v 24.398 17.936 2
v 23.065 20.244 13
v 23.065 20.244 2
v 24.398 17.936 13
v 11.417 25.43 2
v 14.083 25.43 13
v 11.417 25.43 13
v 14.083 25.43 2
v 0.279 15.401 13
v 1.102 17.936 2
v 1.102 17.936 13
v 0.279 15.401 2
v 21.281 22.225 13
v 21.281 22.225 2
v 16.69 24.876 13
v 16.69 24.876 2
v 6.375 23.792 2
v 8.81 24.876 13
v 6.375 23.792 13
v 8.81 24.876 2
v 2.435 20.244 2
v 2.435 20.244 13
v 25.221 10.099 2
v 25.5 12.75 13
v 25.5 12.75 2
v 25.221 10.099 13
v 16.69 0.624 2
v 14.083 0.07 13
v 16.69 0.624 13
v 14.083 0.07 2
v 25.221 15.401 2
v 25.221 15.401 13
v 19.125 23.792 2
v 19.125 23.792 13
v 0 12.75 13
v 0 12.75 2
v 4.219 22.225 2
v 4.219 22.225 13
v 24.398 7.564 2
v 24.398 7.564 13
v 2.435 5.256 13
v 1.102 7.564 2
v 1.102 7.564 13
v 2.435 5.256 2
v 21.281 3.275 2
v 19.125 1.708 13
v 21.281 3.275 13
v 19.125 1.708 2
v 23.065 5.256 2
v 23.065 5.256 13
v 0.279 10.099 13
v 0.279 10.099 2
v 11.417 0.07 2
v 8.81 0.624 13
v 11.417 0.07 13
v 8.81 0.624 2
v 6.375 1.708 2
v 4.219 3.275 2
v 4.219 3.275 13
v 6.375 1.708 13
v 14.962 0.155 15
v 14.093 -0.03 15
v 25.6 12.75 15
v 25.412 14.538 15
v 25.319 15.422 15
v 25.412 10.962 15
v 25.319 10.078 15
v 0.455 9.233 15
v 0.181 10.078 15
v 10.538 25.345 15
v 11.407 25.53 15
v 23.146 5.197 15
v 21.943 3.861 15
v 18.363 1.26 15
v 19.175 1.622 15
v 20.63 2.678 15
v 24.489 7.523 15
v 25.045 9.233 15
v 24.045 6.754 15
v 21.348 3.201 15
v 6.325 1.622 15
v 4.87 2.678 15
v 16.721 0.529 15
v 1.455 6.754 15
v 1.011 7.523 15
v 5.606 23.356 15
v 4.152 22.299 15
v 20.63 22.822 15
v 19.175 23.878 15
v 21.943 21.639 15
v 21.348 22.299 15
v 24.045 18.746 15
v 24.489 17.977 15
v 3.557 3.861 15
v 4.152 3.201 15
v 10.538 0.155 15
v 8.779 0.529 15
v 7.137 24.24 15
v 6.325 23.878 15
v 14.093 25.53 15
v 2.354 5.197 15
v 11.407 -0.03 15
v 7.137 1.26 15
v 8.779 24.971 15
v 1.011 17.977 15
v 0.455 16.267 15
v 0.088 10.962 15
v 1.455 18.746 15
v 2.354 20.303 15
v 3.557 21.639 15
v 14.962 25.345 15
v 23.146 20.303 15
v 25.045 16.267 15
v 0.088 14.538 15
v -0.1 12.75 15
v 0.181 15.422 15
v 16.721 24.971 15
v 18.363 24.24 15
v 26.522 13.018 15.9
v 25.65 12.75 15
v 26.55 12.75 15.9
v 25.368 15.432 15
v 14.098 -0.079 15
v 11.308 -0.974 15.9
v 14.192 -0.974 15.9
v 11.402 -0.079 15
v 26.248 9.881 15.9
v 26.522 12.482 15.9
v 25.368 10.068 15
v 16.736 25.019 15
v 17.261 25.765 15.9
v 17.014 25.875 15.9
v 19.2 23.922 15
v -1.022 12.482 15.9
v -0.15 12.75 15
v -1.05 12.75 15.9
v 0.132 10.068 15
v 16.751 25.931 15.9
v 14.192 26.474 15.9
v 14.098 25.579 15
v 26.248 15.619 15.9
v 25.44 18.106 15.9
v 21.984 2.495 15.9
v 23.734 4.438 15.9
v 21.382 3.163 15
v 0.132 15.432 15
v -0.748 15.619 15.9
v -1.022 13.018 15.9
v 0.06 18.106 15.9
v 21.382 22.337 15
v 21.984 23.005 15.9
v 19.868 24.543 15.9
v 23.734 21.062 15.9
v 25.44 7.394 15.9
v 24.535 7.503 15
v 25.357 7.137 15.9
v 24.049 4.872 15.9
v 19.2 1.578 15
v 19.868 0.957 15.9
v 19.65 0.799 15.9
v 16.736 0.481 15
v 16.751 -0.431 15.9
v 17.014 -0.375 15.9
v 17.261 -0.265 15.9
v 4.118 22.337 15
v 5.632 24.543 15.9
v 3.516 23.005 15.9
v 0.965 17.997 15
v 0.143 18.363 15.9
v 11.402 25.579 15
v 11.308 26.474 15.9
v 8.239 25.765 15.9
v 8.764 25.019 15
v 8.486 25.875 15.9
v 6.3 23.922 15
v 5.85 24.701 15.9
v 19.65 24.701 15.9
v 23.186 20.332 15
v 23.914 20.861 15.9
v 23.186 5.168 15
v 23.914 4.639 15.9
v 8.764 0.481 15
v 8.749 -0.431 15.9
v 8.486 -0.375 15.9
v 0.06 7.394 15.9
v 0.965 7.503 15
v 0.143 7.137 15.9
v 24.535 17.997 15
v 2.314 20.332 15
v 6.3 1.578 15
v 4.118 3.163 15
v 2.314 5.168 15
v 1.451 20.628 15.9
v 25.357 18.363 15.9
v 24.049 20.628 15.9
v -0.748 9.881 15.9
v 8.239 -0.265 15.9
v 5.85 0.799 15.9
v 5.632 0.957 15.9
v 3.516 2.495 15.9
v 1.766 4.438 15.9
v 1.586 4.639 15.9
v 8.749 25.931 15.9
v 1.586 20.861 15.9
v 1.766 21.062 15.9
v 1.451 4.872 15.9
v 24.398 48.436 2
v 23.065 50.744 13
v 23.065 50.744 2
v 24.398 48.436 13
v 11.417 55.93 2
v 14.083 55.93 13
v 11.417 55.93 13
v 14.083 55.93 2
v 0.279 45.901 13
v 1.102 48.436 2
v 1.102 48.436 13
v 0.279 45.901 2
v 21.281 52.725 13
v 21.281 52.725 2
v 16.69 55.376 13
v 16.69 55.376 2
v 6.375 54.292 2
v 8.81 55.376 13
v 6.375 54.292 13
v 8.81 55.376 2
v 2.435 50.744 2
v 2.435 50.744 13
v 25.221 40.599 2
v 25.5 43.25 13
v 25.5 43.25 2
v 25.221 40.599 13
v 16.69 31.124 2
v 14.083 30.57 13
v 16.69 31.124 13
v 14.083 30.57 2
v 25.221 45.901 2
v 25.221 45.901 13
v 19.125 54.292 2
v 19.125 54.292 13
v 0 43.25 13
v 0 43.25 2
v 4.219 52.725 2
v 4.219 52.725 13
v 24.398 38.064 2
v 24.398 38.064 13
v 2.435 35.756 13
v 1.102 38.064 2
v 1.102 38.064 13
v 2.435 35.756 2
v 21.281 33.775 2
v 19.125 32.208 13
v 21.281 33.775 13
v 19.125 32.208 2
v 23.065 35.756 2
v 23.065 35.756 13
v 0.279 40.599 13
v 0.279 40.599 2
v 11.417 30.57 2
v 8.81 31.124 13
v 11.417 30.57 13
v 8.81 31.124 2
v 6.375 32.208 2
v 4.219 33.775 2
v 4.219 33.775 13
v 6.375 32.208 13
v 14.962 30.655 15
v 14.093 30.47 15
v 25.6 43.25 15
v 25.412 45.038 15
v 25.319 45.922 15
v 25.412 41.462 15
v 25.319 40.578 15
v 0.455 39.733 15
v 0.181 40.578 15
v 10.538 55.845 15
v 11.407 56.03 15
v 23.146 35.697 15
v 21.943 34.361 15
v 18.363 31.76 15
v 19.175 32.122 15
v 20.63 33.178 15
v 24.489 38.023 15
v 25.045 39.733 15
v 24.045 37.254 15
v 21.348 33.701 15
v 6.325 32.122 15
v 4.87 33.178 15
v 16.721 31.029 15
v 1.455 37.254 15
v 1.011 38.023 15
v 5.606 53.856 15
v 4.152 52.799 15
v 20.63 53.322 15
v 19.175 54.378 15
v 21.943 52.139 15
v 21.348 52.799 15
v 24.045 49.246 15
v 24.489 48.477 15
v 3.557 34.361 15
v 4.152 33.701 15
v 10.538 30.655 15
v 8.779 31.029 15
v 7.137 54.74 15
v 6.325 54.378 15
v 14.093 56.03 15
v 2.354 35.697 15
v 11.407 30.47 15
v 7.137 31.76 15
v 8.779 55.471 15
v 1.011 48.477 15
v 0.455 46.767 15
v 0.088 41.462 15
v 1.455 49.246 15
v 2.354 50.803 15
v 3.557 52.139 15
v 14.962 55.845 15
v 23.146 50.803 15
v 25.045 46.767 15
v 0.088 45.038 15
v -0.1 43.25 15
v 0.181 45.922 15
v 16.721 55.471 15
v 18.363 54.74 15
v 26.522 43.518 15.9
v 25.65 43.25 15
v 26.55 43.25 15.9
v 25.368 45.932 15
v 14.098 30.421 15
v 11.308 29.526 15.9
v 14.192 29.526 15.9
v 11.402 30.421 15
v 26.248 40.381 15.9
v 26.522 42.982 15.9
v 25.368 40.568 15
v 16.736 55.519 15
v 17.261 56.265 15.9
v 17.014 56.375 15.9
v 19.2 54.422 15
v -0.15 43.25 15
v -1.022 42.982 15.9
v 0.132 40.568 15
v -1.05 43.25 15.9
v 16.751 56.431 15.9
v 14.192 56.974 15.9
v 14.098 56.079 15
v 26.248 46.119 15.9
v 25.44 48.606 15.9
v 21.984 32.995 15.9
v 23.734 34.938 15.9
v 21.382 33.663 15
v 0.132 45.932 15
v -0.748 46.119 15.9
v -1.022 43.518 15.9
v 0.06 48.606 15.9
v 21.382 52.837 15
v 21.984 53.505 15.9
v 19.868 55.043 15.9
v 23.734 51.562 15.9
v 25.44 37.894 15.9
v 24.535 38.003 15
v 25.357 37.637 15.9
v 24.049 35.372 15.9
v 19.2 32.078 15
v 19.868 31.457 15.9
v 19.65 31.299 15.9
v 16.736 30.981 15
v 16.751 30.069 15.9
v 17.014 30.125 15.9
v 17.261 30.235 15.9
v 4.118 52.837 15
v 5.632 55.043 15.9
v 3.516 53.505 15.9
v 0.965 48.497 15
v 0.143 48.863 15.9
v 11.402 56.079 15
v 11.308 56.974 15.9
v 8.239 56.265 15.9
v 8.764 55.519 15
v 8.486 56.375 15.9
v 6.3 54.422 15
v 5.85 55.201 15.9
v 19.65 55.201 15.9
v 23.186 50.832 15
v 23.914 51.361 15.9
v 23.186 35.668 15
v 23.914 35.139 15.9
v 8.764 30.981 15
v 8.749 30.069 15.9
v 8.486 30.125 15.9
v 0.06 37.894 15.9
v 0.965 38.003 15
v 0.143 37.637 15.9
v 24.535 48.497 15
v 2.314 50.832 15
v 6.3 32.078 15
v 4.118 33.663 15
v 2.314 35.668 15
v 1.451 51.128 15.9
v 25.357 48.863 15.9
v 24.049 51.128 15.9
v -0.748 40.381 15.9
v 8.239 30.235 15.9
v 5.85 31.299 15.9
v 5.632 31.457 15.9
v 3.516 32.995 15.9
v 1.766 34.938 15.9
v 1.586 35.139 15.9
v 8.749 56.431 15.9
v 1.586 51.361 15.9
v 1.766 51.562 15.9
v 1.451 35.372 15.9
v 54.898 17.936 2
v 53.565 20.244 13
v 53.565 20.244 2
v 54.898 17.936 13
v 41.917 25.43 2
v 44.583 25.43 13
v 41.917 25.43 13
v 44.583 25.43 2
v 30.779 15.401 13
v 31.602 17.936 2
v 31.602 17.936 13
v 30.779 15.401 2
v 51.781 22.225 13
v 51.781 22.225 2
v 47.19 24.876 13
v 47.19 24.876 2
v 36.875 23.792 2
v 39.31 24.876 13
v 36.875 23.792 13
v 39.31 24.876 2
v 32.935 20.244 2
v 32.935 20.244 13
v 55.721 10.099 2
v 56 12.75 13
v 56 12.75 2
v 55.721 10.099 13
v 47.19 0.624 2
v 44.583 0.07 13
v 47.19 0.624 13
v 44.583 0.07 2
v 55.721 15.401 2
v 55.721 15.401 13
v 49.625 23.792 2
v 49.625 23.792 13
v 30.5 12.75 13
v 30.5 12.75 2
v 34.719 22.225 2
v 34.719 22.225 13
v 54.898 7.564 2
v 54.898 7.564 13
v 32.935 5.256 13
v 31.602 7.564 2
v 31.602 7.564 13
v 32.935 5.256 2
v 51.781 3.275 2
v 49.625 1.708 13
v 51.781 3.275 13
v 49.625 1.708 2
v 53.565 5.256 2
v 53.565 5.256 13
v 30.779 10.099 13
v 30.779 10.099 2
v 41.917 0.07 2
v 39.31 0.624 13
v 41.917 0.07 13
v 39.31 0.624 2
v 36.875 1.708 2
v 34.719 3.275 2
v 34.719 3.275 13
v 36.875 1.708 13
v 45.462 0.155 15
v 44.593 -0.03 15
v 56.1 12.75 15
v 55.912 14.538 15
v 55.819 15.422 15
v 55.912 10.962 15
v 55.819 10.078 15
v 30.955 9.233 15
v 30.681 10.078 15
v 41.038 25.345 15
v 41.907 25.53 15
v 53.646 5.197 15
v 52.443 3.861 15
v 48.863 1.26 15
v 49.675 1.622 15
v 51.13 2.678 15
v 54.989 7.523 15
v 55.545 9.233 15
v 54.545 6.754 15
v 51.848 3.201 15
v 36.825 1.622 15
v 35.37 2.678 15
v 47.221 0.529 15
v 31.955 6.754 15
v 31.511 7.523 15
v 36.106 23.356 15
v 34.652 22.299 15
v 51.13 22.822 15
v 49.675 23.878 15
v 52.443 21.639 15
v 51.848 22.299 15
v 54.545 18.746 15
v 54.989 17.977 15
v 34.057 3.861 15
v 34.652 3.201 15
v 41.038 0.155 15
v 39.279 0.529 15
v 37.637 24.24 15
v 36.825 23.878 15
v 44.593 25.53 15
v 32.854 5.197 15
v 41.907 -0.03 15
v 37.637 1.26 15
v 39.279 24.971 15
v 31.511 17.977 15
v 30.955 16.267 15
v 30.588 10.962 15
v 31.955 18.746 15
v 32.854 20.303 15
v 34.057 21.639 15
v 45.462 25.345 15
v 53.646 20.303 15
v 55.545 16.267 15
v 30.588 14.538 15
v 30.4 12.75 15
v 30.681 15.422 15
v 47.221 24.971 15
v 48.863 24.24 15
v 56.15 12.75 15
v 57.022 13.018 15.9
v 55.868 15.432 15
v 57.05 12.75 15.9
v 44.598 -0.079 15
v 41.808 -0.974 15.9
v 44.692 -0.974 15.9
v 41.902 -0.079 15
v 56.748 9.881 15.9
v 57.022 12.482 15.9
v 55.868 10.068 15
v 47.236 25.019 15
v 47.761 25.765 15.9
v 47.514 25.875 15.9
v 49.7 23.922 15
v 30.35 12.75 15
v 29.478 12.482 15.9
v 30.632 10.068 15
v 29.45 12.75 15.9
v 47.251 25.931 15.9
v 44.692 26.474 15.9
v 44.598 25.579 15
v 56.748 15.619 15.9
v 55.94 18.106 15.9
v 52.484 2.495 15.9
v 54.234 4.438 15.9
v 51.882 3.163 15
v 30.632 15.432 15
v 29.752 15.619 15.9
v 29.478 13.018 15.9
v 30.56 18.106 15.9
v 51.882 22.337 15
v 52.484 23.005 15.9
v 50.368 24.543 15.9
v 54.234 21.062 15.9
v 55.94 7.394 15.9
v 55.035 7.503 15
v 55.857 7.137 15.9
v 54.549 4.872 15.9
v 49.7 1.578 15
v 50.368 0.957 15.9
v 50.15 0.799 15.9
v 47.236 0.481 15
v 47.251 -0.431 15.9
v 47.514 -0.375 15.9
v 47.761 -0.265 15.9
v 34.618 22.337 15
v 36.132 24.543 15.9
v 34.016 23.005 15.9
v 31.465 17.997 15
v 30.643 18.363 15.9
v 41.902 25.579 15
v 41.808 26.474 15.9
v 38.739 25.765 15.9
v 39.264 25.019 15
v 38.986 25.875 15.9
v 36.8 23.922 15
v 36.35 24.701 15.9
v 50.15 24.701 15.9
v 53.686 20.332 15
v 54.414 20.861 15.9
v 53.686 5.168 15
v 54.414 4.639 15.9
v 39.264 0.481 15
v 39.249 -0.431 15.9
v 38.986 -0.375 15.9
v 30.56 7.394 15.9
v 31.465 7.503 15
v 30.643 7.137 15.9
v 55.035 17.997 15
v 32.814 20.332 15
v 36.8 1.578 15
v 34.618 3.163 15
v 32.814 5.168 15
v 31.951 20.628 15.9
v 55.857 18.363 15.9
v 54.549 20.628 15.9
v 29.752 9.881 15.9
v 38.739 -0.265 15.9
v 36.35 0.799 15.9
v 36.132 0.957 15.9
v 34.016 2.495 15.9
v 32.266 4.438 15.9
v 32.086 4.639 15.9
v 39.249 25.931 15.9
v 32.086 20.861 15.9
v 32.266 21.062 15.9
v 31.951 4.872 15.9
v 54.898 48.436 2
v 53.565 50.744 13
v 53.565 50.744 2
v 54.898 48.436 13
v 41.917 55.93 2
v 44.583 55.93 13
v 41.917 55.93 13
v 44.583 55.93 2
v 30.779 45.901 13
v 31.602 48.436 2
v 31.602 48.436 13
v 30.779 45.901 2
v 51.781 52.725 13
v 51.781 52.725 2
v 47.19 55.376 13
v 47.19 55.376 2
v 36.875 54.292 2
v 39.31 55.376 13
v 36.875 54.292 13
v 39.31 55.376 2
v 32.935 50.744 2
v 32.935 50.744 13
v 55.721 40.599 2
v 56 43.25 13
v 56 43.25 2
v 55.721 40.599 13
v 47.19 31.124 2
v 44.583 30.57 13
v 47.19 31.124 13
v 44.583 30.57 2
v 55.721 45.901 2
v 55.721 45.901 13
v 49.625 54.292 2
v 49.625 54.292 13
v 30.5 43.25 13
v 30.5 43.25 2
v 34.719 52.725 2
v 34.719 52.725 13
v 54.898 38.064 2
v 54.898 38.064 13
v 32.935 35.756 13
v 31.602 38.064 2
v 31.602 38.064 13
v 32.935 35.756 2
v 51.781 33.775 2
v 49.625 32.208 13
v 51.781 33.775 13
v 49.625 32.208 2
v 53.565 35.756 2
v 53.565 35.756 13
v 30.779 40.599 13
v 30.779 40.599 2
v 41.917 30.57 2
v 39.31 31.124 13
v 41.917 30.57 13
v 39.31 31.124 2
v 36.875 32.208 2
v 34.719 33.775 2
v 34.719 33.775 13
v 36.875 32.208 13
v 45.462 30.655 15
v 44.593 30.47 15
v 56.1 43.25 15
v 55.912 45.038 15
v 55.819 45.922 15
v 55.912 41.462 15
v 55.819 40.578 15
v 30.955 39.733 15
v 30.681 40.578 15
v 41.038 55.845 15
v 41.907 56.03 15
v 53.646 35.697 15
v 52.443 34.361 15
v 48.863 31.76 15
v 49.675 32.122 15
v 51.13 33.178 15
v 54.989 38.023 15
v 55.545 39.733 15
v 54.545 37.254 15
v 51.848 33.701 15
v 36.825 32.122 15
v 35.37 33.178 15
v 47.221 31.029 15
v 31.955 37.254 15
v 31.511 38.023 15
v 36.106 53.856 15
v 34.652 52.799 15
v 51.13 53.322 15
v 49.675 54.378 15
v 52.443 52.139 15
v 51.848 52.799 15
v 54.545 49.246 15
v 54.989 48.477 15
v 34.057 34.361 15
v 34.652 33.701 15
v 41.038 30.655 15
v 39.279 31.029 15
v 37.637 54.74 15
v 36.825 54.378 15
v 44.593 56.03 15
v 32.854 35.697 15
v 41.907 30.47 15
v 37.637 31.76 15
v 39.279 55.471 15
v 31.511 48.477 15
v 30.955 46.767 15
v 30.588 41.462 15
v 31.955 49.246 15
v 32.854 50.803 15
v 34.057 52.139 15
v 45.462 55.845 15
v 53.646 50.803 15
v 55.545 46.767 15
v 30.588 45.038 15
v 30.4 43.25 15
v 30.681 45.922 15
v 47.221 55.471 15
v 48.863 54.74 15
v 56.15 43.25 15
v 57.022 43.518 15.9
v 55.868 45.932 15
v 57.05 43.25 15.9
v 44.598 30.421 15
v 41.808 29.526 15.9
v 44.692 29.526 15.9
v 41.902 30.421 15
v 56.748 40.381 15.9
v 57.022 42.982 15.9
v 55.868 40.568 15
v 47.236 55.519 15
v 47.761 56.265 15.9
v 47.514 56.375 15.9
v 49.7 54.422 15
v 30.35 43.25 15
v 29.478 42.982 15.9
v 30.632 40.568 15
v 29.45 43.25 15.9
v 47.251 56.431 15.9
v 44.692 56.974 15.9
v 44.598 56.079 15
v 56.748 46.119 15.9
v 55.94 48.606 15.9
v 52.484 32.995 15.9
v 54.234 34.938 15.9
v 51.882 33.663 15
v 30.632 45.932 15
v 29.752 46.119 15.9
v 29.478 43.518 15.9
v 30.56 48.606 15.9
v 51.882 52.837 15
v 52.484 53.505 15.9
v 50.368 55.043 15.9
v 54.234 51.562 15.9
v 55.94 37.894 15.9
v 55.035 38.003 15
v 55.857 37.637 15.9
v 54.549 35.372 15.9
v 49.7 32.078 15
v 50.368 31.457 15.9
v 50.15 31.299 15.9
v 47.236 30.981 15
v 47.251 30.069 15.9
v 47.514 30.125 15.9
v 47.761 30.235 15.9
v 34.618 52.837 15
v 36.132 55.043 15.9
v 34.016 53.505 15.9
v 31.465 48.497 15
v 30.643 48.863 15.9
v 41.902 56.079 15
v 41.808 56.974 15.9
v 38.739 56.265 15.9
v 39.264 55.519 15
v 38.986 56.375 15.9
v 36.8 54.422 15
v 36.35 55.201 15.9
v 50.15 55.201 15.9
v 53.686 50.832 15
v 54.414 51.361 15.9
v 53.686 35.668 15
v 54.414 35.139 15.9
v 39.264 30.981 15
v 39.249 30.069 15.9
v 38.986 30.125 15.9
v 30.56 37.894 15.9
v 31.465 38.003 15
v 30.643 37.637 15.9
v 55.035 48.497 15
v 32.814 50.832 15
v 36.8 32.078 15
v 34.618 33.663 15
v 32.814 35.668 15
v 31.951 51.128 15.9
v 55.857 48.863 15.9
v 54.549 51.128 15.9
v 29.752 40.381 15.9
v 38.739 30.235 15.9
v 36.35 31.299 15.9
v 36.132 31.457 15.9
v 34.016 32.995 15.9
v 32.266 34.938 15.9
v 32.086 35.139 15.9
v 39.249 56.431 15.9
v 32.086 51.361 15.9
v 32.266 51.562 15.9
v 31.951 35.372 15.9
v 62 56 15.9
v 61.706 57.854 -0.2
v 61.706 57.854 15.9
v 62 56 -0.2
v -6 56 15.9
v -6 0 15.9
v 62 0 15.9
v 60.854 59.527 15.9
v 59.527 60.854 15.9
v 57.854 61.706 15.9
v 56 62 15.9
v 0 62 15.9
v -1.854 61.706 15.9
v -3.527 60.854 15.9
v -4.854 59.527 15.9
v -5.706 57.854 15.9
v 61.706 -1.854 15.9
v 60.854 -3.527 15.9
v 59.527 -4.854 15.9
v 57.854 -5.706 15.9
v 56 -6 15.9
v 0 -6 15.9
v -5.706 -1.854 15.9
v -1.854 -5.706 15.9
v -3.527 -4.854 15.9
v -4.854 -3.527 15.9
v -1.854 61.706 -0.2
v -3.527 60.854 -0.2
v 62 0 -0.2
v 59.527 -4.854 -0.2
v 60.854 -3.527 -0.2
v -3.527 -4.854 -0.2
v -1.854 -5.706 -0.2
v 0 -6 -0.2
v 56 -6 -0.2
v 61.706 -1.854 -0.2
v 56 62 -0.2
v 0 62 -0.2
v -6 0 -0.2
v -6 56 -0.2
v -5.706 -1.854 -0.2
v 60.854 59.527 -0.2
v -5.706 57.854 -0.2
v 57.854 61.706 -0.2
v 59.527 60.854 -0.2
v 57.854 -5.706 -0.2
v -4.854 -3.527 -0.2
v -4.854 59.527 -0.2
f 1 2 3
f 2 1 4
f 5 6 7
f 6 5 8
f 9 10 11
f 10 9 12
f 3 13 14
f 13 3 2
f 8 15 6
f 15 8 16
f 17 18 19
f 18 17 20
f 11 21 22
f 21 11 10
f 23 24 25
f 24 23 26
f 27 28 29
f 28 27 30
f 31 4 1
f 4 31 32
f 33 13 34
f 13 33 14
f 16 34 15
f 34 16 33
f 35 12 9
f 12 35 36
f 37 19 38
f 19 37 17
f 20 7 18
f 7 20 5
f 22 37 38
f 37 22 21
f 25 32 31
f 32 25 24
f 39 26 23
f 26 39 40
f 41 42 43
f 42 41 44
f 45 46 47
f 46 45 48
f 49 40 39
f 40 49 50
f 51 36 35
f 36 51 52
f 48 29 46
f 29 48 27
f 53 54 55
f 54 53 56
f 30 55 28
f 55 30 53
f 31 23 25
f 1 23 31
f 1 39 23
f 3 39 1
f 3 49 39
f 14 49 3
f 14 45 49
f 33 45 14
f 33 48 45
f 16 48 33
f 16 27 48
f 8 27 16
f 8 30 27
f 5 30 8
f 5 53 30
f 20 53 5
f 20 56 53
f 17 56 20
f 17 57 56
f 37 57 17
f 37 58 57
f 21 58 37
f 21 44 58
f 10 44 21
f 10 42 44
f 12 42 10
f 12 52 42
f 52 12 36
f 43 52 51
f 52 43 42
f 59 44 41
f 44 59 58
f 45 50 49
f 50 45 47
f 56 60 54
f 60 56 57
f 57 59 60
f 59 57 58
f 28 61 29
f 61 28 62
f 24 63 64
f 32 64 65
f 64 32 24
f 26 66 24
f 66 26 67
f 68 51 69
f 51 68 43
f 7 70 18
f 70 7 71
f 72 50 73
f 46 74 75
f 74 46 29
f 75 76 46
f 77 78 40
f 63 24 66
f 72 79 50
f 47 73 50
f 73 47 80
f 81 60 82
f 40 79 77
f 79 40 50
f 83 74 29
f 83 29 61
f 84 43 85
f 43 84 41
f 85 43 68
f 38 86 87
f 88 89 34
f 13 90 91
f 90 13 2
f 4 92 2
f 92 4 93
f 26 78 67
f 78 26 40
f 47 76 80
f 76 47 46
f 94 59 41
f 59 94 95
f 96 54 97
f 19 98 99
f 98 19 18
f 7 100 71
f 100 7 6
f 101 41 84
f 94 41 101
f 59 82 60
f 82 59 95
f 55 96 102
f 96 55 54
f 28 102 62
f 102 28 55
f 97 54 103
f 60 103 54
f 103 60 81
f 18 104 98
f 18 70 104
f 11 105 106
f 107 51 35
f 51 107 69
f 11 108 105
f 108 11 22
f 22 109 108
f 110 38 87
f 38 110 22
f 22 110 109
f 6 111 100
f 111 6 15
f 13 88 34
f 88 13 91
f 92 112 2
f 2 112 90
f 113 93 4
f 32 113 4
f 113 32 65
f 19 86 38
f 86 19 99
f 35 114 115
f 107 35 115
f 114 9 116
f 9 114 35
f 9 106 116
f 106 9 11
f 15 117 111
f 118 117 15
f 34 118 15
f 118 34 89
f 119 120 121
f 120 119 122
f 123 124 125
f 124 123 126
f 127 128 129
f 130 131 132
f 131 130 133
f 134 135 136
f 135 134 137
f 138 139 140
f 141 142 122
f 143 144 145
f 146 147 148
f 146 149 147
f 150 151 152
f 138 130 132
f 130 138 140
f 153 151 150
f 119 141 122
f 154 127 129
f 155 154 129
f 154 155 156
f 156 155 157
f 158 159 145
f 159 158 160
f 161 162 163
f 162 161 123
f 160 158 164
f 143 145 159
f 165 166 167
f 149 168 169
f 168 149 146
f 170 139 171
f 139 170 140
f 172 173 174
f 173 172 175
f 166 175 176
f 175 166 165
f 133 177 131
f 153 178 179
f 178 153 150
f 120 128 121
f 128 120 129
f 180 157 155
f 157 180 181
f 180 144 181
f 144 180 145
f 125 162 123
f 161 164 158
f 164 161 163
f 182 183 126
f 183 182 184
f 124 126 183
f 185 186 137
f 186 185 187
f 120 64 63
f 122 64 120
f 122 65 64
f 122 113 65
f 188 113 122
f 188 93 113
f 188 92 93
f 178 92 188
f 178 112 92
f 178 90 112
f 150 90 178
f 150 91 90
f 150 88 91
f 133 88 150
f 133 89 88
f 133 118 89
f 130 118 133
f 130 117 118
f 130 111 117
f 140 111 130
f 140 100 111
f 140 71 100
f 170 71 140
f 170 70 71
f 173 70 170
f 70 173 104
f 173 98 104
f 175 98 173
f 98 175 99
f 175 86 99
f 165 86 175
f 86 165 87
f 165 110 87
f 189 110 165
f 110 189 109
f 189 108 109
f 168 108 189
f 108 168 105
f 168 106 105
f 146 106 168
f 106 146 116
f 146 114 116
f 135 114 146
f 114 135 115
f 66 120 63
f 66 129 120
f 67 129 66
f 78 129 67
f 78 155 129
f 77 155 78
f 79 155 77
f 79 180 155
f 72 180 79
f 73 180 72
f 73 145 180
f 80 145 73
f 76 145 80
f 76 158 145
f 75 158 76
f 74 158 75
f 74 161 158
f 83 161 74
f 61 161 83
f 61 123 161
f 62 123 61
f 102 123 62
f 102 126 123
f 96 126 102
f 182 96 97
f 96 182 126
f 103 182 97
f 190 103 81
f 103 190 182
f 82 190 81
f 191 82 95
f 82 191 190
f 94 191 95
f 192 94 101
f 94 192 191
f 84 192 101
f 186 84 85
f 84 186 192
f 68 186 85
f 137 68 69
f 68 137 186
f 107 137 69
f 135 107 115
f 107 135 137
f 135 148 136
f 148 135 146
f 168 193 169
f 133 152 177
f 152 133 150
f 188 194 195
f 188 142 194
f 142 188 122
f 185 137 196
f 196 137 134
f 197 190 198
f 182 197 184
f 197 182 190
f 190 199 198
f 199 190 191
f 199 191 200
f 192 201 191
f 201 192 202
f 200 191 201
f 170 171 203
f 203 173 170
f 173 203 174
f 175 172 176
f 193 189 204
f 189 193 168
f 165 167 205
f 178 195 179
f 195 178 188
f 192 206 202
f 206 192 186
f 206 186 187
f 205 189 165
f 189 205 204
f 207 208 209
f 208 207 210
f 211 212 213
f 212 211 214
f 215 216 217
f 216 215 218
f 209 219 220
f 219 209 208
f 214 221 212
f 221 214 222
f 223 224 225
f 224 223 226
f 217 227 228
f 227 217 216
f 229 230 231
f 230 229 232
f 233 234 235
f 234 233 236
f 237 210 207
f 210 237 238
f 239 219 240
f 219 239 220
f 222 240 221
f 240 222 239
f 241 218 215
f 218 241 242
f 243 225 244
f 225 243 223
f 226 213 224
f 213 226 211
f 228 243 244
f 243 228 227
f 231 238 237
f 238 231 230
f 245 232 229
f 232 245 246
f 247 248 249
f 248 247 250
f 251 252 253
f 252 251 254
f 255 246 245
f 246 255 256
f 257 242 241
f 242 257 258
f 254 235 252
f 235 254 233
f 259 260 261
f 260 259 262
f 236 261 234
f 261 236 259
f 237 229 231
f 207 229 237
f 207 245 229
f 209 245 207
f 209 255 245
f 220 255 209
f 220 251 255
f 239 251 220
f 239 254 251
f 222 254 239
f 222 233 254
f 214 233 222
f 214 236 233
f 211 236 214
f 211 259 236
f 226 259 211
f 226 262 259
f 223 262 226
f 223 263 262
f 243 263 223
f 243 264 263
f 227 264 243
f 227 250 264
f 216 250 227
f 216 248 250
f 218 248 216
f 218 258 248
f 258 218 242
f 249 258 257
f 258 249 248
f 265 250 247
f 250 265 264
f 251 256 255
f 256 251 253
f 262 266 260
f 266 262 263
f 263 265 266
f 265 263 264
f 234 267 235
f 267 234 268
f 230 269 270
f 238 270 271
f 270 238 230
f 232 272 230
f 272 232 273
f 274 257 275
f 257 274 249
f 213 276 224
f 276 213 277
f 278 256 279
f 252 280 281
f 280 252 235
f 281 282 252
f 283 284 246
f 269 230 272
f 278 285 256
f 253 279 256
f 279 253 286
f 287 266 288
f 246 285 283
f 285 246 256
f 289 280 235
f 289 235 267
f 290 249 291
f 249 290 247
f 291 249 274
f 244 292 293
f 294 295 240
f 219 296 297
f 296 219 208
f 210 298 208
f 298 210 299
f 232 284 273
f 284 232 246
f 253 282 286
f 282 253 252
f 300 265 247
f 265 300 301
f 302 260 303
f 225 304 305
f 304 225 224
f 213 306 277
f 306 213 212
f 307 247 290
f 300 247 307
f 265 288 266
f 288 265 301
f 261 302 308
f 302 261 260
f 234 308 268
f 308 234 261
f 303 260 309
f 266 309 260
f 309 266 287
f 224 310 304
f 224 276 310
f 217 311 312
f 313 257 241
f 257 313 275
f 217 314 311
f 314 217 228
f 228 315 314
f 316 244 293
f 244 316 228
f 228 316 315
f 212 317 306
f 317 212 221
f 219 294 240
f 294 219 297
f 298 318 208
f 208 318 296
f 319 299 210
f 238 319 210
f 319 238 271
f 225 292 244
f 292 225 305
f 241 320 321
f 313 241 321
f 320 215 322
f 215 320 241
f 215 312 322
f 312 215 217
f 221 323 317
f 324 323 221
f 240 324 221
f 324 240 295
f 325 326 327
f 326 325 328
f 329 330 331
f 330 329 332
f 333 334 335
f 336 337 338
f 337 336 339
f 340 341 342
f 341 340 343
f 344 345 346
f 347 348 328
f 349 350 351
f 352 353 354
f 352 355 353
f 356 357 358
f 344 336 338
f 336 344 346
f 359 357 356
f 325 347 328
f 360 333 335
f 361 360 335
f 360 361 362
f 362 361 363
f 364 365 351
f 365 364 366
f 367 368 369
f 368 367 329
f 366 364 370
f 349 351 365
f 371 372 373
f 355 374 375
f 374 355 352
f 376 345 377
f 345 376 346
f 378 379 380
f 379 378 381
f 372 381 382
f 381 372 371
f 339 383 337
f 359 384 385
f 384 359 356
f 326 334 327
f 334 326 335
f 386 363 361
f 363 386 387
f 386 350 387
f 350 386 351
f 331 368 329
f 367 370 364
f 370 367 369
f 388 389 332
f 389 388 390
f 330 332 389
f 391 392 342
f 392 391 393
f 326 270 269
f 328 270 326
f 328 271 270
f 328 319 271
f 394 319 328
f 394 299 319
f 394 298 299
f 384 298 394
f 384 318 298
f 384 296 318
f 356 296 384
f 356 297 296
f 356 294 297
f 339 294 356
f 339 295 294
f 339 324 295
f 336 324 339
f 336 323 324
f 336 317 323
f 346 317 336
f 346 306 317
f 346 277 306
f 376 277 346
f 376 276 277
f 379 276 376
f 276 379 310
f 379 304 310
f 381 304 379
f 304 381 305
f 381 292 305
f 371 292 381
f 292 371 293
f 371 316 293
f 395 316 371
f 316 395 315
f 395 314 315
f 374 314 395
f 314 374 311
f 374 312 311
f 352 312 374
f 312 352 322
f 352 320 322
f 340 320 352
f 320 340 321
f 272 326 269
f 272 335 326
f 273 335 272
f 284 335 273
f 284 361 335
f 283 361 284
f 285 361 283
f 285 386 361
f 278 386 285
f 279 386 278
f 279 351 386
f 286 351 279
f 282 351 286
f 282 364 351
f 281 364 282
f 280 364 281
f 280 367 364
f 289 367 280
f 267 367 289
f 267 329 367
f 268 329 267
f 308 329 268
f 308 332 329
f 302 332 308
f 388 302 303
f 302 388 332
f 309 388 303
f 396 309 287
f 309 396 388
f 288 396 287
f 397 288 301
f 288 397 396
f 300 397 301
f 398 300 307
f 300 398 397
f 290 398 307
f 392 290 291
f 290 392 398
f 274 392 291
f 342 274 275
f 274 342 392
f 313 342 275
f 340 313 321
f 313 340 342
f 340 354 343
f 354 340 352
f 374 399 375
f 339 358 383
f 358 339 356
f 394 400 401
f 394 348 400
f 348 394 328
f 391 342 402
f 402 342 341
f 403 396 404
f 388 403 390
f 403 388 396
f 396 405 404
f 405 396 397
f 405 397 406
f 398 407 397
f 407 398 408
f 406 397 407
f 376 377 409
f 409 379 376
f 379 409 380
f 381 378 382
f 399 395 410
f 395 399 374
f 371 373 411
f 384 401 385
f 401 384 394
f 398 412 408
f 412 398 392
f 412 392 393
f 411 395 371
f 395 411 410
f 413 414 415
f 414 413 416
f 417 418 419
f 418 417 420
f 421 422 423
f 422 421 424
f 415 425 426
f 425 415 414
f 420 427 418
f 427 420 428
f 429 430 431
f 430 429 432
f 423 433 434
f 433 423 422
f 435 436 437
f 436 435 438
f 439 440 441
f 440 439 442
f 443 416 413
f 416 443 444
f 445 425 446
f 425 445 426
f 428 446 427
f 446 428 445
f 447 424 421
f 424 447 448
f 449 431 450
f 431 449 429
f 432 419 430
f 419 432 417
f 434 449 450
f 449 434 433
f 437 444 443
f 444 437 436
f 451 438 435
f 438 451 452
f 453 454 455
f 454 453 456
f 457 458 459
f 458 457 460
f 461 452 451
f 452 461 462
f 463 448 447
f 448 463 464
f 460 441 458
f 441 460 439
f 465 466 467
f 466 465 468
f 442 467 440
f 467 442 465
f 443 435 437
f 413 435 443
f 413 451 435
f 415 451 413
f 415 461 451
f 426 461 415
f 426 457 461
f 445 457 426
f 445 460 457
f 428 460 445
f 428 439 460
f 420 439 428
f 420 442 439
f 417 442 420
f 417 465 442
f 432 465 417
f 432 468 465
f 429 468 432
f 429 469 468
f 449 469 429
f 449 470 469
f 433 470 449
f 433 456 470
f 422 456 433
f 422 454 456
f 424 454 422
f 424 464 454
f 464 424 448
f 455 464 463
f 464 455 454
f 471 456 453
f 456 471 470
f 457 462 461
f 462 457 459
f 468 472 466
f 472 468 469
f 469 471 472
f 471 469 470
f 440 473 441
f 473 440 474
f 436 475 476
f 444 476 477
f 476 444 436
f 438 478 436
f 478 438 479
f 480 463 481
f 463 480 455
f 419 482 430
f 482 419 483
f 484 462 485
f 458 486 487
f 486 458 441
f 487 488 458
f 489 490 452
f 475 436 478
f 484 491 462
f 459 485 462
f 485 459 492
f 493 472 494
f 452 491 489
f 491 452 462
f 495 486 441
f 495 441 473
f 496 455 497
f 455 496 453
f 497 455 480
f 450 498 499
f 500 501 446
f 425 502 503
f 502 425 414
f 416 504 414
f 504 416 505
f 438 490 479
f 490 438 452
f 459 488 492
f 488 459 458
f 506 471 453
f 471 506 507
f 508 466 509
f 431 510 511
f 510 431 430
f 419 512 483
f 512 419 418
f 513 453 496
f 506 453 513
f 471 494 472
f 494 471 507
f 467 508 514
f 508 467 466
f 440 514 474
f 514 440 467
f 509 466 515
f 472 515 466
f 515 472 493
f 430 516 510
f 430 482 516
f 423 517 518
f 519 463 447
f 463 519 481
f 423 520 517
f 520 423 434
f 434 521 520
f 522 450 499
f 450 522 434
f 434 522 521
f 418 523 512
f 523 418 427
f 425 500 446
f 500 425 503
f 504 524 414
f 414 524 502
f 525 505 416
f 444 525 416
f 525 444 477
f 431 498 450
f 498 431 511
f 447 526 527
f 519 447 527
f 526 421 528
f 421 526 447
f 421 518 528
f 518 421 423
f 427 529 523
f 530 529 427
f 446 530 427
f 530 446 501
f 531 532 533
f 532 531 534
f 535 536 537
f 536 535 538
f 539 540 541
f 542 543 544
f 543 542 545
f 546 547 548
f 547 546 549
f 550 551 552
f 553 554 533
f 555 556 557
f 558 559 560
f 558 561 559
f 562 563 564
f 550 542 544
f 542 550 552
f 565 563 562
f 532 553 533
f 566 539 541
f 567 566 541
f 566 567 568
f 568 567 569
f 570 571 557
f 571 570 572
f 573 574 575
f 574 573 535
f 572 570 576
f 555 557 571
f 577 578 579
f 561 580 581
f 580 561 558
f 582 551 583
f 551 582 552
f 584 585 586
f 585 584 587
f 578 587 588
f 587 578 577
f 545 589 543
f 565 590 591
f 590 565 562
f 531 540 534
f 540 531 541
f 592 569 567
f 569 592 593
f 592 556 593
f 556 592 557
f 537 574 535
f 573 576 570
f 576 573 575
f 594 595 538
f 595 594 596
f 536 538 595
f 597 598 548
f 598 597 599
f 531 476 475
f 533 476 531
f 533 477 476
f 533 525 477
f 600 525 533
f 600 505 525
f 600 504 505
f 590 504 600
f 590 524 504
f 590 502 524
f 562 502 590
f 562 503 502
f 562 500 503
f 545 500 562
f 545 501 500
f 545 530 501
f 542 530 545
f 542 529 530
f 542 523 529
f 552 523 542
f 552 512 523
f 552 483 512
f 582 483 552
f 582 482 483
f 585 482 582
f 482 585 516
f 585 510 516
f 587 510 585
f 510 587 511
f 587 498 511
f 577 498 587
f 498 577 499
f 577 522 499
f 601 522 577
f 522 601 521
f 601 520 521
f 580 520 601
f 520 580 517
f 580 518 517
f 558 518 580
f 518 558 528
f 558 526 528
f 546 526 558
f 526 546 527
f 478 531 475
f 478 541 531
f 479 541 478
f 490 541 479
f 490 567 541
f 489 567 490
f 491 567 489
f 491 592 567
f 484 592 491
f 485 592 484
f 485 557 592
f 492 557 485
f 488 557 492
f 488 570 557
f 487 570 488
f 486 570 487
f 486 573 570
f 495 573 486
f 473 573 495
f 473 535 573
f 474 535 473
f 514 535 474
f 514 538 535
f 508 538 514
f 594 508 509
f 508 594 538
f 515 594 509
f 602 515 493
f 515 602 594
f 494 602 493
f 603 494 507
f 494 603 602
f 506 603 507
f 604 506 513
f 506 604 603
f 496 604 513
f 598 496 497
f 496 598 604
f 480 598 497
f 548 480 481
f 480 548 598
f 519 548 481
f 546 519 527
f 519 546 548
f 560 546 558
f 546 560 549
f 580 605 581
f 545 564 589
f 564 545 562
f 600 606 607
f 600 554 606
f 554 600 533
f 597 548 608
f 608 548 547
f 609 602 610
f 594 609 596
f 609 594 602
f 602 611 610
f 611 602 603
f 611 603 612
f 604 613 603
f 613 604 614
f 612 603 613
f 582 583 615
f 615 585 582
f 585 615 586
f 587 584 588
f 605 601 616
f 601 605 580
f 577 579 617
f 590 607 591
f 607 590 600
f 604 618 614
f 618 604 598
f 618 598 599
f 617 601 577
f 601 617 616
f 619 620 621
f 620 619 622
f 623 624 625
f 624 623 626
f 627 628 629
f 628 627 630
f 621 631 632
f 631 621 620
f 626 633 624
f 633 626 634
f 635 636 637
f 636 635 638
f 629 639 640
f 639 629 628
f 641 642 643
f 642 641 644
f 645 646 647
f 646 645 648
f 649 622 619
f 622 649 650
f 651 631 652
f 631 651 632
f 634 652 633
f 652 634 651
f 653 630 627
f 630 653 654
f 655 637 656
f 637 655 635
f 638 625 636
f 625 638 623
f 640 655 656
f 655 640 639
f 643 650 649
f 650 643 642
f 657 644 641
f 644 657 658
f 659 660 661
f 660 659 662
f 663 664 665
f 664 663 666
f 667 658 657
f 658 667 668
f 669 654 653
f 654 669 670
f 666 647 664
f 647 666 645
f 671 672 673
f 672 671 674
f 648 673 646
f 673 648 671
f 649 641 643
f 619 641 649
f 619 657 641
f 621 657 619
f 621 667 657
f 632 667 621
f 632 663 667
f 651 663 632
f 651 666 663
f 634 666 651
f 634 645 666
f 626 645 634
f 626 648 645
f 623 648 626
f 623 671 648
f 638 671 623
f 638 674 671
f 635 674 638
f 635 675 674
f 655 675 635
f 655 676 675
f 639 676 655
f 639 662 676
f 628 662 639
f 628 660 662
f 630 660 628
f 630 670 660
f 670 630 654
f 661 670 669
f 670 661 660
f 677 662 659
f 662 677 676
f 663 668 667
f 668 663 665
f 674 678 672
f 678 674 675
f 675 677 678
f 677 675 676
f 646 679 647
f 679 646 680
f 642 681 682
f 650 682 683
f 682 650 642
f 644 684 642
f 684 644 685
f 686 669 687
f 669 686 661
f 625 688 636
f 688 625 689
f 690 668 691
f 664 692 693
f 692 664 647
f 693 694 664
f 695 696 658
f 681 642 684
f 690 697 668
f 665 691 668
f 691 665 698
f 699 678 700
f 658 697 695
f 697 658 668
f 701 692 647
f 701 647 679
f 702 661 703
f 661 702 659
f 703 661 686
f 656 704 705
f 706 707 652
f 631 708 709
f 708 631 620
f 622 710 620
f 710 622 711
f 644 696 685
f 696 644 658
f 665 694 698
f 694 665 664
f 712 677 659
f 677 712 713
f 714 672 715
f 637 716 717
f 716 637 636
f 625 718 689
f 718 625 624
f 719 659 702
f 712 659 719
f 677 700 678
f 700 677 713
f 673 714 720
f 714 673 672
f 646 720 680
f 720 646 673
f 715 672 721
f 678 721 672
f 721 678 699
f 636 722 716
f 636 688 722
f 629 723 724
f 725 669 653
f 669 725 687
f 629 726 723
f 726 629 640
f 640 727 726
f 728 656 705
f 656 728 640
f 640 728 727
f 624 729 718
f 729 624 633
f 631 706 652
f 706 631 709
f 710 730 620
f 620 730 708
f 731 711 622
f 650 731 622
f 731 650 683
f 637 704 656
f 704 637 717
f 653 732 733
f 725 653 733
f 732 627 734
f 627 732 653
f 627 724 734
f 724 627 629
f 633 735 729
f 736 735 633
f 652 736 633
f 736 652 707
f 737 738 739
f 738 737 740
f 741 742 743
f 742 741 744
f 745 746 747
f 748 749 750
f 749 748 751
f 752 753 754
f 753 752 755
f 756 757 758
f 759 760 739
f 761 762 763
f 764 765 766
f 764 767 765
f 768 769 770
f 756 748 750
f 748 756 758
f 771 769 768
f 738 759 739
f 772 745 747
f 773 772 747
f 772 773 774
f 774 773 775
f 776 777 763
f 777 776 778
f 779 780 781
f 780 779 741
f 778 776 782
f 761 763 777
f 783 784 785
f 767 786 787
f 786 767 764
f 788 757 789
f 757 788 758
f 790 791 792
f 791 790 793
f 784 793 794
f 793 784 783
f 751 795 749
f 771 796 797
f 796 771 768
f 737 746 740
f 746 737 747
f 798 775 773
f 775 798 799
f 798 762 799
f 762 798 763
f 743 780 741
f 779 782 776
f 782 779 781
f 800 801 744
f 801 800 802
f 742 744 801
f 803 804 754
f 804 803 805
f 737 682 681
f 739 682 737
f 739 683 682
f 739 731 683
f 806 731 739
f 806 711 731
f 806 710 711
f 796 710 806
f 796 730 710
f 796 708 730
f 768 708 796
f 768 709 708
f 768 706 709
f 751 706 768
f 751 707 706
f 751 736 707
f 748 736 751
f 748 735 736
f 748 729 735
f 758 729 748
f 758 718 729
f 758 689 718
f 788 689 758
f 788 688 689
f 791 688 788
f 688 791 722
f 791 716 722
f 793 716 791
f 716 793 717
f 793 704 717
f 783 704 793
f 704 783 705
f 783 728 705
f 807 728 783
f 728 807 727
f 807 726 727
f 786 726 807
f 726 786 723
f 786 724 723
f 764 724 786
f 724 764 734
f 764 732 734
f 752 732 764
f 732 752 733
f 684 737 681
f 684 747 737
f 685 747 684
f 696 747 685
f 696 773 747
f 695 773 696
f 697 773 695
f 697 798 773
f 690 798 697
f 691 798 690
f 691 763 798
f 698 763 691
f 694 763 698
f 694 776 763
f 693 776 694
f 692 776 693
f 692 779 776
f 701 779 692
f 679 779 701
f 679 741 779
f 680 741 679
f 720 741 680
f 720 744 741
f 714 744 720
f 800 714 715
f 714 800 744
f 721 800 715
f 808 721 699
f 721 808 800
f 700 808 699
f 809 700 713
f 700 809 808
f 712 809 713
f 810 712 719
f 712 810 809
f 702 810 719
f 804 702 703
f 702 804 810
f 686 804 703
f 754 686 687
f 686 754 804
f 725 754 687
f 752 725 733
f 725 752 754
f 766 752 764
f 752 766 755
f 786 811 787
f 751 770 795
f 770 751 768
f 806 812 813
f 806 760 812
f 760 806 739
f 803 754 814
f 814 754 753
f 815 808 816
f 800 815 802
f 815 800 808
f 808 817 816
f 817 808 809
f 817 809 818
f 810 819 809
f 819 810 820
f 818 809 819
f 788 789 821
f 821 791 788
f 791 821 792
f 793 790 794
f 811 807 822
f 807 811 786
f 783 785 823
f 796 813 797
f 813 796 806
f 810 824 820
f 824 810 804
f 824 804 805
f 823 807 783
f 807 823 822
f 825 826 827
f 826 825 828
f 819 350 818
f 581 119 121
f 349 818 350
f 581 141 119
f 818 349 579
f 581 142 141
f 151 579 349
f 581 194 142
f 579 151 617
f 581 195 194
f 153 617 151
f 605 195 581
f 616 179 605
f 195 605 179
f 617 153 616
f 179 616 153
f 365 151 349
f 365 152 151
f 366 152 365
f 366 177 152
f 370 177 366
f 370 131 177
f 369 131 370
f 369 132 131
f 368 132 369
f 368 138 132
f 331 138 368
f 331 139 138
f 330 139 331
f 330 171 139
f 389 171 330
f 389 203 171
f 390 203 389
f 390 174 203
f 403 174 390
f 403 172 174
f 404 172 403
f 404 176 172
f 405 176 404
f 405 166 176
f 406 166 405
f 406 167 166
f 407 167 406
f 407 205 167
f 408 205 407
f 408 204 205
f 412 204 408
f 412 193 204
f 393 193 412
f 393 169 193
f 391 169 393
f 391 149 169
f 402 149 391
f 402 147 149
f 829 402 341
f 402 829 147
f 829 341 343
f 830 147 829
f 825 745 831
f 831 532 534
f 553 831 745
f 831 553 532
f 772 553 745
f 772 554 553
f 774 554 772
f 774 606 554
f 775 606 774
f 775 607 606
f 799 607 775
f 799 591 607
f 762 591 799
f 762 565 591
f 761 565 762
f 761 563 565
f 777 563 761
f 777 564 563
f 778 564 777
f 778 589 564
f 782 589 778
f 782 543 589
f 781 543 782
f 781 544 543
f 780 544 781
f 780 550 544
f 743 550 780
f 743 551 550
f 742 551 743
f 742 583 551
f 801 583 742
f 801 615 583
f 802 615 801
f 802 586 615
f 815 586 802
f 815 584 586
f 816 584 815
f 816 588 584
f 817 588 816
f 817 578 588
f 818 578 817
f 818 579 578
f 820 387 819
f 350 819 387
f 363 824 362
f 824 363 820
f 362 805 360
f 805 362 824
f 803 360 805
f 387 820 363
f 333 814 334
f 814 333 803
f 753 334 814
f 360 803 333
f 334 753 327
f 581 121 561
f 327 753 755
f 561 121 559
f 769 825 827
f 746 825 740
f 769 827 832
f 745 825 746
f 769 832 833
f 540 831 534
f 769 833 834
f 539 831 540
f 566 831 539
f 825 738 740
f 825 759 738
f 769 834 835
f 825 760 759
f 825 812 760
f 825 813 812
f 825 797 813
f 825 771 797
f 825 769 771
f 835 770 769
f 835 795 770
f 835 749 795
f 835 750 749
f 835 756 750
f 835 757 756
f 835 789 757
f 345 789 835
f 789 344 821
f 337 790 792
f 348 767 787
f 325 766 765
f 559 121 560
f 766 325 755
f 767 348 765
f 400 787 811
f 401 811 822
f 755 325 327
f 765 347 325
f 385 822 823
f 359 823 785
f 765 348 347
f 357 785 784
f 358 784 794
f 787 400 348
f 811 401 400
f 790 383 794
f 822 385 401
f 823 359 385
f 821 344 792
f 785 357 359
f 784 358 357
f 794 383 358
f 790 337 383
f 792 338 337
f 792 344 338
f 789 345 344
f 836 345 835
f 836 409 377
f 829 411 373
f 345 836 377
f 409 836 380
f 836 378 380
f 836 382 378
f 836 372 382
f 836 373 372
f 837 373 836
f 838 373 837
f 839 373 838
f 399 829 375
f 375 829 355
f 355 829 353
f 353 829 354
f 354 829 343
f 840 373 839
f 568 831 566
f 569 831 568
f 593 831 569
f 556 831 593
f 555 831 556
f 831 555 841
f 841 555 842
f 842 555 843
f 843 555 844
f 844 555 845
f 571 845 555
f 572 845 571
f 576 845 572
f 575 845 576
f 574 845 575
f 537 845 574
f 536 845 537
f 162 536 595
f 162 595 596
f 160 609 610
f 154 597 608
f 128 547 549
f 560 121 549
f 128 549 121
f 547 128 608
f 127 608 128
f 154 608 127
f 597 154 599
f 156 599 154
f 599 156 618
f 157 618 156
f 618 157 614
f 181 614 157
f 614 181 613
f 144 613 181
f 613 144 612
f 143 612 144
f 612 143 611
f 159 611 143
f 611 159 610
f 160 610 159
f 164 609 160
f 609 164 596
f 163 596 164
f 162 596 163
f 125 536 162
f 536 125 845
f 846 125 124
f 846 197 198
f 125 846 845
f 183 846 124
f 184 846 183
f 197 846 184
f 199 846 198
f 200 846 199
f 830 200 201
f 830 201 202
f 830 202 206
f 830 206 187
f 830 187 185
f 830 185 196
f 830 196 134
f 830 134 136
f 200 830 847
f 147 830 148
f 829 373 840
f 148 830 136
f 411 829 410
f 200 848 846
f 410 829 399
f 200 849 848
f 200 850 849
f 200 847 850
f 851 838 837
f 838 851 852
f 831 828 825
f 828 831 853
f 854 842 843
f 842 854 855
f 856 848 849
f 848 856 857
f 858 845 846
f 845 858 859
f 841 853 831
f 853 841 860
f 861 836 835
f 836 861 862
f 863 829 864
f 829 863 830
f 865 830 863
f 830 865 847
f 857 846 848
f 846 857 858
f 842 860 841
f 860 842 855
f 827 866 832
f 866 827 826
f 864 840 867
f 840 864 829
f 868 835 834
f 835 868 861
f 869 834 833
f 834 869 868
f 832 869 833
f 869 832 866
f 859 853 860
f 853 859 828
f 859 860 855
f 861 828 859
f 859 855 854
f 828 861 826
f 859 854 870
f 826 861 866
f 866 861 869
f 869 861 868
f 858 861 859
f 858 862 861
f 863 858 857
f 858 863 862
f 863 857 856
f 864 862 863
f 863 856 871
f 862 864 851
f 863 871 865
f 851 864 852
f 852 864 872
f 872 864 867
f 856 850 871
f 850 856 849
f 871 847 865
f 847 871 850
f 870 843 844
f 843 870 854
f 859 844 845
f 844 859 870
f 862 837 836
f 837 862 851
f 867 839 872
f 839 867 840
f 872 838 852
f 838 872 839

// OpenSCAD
d = 25.5; // diameter of bottle; 25.2 is too tight
m = 5; // space between bottles
s = 0; // surrounding spacing
r = 6; // additional round radius

h = 16; // height of the tray
hh = 2; // the plastic height under the bottle

a = d*2 + m*(2-1) + s*2;
b = d*2 + m*(2-1) + s*2;

module slot(x, y) {
    large = 80;
    translate([(x+0.5)*d+x*m, (y+0.5)*d+y*m,0]) union() {
        translate([0,0, hh]) cylinder(d=d, h=large);
        translate([0,0, h-3]) cylinder(d1=d, d2=d+0.3, h=3);
        translate([0,0, h-1]) cylinder(d1=d+0.3, d2=d+0.3+2, h=1);
    }
}

difference() {
    translate([-s,-s,-0.2]) minkowski() {
        $fn=20;
        cube([a, b, h]);
        cylinder(r=r, h=0.1);
    }
    
    slot(0,0);
    slot(0,1);
    slot(1,0);
    slot(1,1);
    
}
        
